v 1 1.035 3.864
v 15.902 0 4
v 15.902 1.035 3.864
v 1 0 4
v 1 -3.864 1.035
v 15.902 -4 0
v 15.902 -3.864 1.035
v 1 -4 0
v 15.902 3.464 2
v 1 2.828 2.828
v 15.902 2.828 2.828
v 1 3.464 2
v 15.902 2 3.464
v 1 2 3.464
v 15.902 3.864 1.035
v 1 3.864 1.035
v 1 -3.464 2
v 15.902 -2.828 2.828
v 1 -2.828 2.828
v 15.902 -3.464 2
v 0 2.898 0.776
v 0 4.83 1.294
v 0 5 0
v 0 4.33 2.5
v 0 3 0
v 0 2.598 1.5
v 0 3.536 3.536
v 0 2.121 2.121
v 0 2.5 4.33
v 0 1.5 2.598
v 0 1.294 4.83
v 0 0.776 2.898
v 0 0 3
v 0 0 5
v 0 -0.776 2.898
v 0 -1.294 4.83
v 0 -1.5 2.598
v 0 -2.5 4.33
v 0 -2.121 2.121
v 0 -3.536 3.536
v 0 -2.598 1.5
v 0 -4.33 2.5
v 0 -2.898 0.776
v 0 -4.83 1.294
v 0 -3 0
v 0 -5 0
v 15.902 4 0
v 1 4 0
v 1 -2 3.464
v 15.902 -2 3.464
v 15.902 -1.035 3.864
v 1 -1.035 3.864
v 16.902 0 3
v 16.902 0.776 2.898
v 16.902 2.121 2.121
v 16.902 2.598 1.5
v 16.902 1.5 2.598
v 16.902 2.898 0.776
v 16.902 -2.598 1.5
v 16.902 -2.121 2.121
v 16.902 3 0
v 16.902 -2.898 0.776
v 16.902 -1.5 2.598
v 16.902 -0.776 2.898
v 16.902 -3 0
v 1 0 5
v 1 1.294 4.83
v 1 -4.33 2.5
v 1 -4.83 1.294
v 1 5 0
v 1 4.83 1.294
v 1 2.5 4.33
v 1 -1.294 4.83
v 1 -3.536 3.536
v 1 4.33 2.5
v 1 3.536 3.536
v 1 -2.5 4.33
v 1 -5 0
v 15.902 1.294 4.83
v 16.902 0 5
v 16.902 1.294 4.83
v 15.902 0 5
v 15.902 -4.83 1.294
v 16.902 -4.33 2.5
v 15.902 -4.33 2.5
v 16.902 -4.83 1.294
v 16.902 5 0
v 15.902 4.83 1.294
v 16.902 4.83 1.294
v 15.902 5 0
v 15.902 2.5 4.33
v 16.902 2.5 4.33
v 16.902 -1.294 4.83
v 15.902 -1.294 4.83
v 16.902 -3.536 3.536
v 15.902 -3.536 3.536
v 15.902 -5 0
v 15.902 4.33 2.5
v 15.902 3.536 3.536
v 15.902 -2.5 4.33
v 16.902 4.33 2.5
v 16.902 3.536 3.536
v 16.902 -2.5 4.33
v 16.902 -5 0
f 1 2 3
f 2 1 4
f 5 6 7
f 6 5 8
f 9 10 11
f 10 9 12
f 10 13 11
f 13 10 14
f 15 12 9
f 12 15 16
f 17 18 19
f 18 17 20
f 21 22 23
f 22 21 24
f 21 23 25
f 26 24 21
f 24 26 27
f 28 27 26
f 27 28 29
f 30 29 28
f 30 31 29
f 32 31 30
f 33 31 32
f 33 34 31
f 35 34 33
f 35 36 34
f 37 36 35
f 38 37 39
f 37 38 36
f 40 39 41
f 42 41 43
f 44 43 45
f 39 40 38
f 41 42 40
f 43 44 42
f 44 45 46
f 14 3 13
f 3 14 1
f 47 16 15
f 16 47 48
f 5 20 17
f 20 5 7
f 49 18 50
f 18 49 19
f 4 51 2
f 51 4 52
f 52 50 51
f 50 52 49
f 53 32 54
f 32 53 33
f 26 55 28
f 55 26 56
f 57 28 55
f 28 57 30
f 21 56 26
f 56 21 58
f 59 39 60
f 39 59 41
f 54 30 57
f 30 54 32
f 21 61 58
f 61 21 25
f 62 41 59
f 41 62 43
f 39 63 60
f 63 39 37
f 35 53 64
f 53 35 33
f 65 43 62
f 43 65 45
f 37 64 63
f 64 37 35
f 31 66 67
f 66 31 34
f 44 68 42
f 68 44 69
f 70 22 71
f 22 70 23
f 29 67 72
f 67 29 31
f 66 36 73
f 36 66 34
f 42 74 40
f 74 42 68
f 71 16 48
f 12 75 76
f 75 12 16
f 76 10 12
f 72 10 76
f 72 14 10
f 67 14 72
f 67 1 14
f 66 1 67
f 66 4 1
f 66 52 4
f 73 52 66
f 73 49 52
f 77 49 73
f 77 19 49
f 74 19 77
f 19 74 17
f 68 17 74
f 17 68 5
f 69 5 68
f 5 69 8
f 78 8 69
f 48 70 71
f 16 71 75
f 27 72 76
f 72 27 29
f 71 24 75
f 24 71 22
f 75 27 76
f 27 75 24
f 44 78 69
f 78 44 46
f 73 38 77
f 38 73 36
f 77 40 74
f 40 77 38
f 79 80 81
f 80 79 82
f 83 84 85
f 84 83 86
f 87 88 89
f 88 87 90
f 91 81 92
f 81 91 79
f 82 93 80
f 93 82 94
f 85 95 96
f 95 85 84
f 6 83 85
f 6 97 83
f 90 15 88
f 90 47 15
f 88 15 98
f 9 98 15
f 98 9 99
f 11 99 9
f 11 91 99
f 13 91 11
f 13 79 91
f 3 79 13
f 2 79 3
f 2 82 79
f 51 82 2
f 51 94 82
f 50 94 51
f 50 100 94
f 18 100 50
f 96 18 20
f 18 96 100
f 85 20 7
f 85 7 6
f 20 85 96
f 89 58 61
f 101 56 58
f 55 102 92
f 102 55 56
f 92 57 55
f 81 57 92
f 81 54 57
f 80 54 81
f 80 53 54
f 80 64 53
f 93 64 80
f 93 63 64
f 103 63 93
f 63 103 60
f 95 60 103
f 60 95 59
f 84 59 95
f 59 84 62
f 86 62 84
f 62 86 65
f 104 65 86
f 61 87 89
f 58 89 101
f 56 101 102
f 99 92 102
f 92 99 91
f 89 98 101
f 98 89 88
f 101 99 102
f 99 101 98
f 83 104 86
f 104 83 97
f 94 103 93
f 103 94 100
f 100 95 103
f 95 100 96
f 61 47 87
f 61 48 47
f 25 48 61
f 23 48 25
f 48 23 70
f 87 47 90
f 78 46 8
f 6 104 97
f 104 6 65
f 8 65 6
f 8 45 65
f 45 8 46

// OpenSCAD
// file: ../build_environments.scad
// build_environments.scad: modules to build level sections
//

module pool(diameter=10.0, wall_height=2.0, step_width=3.0, connections=[])
{
    difference() {
        union() {
        difference() {
            cylinder(h=0.5,r1=diameter+step_width,r2=diameter+step_width,$fn=48);
            translate([0,0,-0.1])
                cylinder(h=0.7,r1=diameter,r2=diameter,$fn=48);
        }
        difference() {
            cylinder(h=wall_height,r1=diameter+step_width+1.0,r2=diameter+step_width+1.0,$fn=48);
            translate([0,0,-0.1])
                cylinder(h=wall_height+0.2,r1=diameter+step_width,r2=diameter+step_width,$fn=48);
        }
        }
    
        for (c = connections)
        {
            rotate([0,90,0]) {
                angle = atan2(c[1],c[0]);
                rotate([-angle,0,0]) {
                    cylinder(h=diameter+5.0,r1=c[2],r2=c[2],$fn=48);
                }
            }
        }
    }
}

module straight(length=10.0, width=2.0, dy1=0.0, dy2=0.0, dz=0.0)
{
    dims = [0, 0, 0, 0, 0, (dz/length)];
    matrix = [
        [ 1, dims[0], dims[1], 0 ],
        [ dims[2], 1, dims[4], 0 ],
        [ dims[5], dims[3], 1, 0 ],
        [ 0, 0, 0, 1 ]
    ];
    multmatrix(matrix)
    difference() {
        translate([dy1,0,0])
        union() {
            rotate([0,90,0]) {
                difference() {
                    cylinder(h=(length-dy1-dy2),r1=width+1.0,r2=width+1.0,$fn=24);
                    translate([0,0,-0.1])
                        cylinder(h=(length-dy1-dy2+0.2),r1=width,r2=width,$fn=24);
                }
                difference() {
                    cylinder(h=1.0,r1=width+2.0,r2=width+2.0,$fn=24);
                    translate([0,0,-0.1])
                        cylinder(h=1.2,r1=width,r2=width,$fn=24);
                }
                translate([0,0,(length-dy1-dy2)-1.0]) {
                    difference() {
                        cylinder(h=1.0,r1=width+2.0,r2=width+2.0,$fn=24);
                        translate([0,0,-0.1])
                            cylinder(h=1.2,r1=width,r2=width,$fn=24);
                    }
                }
            }
        }
        translate([0,0,-(2*width+4.0)/2])
            cube([3*length,3*length,2*width+4.0],center=true);
    }
}

module curve(p0=[0,0], center=[0,0], dir=1, angle=0.0, width=2.0)
{
    radius = sqrt((p0[0]-center[0])*(p0[0]-center[0]) + (p0[1]-center[1])*(p0[1]-center[1]));
    if (dir == 0) {
        difference() {
            rotate([0,0,-90])
            difference() {
                rotate_extrude(angle = angle, convexity = 10, $fn=32)
                    translate([radius, 0, 0])
                        circle(r = width+1.0,$fn=24);
                rotate([0,0,-1.0])
                    rotate_extrude(angle = angle+2.0, convexity = 10, $fn=32)
                        translate([radius, 0, 0])
                            circle(r = width,$fn=24);
            }
            translate([0,0,-(2*width+4.0)/2])
                cube([5*radius,5*radius,2*width+4.0],center=true);
        }
    }
    else {
        difference() {
            rotate([0,0,90])
            difference() {
                rotate_extrude(angle = -angle, convexity = 10, $fn=32)
                    translate([radius, 0, 0])
                        circle(r = width+1.0,$fn=24);
                rotate([0,0,1.0])
                    rotate_extrude(angle = -angle-2.0, convexity = 10, $fn=32)
                        translate([radius, 0, 0])
                            circle(r = width,$fn=24);
            }
            translate([0,0,-(2*width+4.0)/2])
                cube([5*radius,5*radius,2*width+4.0],center=true);
        }
    }

}

// test pool
//pool(diameter=12.0000, wall_height=3.0000, step_width=3.0000, connections=[[0.0000,-26.0000,2.0000], [23.6074,0.0000,2.0000]]);

// test straight, slope
//straight(length=26.0000, width=2.0000, dy1=11.8322, dy2=6.7082, dz=0.0000);
//straight(length=29.1549, width=12.0000, dy1=0.0000, dy2=0.0000, dz=-15.0000);

// test curve
//curve(p0=[23.6074, 0.0000], center=[23.6074, 5.0000], dir=0, angle=60.1011, width=2.0000);
//curve(p0=[33.6426, 12.4219], center=[37.9771, 9.9295], dir=1, angle=120.4627, width=2.0000);
// main file
use <../build_environments.scad>;
straight(length=16.9017, width=3.0000, dy1=0.0000, dy2=0.0000, dz=0.0000);
